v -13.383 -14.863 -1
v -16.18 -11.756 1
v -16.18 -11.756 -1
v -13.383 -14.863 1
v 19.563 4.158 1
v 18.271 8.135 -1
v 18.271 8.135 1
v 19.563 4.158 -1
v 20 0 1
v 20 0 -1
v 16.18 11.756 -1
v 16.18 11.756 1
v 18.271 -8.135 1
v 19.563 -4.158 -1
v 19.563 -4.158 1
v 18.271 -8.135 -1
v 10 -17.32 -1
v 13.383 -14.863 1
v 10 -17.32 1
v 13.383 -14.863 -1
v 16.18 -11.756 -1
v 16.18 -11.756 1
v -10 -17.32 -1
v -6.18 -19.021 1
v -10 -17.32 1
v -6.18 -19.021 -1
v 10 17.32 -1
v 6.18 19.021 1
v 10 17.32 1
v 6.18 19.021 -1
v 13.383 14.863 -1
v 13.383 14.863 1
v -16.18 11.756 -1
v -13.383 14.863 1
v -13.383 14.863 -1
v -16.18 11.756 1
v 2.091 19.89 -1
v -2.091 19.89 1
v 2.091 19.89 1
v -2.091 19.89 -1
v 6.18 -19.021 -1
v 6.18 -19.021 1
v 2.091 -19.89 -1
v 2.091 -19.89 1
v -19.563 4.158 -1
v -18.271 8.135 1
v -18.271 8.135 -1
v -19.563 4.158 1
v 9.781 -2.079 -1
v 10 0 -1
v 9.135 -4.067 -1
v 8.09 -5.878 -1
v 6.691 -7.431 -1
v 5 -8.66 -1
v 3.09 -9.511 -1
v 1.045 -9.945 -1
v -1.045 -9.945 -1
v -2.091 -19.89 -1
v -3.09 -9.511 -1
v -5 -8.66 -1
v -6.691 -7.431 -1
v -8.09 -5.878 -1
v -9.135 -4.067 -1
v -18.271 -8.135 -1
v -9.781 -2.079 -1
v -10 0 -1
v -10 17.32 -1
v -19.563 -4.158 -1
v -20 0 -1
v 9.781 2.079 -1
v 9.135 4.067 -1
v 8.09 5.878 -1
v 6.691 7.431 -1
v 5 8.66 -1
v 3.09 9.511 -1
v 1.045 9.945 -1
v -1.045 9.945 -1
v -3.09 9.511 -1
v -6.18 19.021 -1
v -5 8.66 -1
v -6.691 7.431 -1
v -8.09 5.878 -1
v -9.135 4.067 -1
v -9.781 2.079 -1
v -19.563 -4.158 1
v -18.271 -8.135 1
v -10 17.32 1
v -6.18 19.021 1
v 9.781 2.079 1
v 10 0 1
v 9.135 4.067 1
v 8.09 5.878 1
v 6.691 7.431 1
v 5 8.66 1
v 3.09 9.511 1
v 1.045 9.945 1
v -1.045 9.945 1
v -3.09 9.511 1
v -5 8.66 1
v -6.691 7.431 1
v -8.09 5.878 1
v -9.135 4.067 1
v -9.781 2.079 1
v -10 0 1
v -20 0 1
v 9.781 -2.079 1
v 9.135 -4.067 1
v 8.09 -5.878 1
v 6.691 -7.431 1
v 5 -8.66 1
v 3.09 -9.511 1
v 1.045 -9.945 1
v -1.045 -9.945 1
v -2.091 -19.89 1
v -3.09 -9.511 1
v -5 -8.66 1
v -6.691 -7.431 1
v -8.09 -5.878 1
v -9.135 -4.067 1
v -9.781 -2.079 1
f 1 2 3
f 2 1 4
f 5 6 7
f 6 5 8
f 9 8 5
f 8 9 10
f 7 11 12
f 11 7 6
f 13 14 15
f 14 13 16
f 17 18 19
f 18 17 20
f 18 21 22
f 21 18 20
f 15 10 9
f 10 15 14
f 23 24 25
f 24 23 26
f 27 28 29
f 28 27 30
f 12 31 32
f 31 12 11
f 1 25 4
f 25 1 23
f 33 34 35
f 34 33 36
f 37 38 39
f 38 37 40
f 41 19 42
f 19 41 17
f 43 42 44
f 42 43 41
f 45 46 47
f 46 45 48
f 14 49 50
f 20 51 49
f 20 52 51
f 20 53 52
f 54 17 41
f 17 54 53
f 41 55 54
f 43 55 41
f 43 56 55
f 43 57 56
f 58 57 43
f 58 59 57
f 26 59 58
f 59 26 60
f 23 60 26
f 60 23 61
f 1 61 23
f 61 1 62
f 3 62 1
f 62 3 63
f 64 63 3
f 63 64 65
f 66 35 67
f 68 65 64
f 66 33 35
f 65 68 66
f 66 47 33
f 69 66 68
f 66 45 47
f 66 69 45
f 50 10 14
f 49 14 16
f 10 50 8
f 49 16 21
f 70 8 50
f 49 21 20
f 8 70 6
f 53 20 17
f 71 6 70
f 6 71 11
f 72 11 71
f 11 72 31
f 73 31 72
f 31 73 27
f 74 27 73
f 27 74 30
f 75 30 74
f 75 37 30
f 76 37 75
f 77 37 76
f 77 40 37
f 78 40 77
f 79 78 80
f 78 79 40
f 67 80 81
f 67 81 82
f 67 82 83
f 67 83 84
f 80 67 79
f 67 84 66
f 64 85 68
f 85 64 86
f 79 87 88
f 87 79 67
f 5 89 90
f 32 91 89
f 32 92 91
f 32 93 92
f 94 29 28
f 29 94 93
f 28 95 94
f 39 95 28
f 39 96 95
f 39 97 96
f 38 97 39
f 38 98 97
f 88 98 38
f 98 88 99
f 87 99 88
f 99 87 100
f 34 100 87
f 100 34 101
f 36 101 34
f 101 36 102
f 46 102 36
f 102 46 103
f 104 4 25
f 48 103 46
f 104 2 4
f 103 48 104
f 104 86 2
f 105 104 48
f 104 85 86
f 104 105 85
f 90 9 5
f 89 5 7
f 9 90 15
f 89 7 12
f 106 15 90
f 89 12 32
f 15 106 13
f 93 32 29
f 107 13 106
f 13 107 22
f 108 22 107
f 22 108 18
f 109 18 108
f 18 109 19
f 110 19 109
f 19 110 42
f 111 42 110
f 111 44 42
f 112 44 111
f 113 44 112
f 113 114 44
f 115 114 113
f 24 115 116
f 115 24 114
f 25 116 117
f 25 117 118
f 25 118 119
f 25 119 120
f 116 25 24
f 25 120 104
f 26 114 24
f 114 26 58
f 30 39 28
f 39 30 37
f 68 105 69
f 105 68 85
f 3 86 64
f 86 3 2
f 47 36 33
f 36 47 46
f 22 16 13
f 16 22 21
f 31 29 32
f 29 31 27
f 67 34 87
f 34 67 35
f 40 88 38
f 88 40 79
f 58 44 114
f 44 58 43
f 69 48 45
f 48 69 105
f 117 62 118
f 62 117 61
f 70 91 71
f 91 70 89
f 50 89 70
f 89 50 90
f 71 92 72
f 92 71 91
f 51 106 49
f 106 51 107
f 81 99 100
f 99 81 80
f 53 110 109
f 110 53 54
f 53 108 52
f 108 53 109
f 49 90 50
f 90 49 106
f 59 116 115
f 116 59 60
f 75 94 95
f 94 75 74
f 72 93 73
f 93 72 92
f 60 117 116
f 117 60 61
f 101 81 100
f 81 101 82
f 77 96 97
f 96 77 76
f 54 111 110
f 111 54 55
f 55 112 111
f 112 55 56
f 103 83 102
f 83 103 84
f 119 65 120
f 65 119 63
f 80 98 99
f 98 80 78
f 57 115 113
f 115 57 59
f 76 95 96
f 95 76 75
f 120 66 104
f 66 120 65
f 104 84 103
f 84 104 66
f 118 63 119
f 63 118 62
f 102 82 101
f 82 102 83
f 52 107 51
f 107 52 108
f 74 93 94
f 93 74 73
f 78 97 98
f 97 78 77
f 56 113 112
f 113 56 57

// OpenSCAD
// Spacer Ring Component
// Description: A flat, circular ring with a hollow center. It is thin and has a smooth surface.

module spacer_ring() {
    difference() {
        // Outer cylinder
        cylinder(h=2, r=20, center=true);
        // Inner hollow cylinder
        translate([0, 0, -1]) cylinder(h=4, r=10, center=true);
    }
}

// Render the spacer ring
spacer_ring();
